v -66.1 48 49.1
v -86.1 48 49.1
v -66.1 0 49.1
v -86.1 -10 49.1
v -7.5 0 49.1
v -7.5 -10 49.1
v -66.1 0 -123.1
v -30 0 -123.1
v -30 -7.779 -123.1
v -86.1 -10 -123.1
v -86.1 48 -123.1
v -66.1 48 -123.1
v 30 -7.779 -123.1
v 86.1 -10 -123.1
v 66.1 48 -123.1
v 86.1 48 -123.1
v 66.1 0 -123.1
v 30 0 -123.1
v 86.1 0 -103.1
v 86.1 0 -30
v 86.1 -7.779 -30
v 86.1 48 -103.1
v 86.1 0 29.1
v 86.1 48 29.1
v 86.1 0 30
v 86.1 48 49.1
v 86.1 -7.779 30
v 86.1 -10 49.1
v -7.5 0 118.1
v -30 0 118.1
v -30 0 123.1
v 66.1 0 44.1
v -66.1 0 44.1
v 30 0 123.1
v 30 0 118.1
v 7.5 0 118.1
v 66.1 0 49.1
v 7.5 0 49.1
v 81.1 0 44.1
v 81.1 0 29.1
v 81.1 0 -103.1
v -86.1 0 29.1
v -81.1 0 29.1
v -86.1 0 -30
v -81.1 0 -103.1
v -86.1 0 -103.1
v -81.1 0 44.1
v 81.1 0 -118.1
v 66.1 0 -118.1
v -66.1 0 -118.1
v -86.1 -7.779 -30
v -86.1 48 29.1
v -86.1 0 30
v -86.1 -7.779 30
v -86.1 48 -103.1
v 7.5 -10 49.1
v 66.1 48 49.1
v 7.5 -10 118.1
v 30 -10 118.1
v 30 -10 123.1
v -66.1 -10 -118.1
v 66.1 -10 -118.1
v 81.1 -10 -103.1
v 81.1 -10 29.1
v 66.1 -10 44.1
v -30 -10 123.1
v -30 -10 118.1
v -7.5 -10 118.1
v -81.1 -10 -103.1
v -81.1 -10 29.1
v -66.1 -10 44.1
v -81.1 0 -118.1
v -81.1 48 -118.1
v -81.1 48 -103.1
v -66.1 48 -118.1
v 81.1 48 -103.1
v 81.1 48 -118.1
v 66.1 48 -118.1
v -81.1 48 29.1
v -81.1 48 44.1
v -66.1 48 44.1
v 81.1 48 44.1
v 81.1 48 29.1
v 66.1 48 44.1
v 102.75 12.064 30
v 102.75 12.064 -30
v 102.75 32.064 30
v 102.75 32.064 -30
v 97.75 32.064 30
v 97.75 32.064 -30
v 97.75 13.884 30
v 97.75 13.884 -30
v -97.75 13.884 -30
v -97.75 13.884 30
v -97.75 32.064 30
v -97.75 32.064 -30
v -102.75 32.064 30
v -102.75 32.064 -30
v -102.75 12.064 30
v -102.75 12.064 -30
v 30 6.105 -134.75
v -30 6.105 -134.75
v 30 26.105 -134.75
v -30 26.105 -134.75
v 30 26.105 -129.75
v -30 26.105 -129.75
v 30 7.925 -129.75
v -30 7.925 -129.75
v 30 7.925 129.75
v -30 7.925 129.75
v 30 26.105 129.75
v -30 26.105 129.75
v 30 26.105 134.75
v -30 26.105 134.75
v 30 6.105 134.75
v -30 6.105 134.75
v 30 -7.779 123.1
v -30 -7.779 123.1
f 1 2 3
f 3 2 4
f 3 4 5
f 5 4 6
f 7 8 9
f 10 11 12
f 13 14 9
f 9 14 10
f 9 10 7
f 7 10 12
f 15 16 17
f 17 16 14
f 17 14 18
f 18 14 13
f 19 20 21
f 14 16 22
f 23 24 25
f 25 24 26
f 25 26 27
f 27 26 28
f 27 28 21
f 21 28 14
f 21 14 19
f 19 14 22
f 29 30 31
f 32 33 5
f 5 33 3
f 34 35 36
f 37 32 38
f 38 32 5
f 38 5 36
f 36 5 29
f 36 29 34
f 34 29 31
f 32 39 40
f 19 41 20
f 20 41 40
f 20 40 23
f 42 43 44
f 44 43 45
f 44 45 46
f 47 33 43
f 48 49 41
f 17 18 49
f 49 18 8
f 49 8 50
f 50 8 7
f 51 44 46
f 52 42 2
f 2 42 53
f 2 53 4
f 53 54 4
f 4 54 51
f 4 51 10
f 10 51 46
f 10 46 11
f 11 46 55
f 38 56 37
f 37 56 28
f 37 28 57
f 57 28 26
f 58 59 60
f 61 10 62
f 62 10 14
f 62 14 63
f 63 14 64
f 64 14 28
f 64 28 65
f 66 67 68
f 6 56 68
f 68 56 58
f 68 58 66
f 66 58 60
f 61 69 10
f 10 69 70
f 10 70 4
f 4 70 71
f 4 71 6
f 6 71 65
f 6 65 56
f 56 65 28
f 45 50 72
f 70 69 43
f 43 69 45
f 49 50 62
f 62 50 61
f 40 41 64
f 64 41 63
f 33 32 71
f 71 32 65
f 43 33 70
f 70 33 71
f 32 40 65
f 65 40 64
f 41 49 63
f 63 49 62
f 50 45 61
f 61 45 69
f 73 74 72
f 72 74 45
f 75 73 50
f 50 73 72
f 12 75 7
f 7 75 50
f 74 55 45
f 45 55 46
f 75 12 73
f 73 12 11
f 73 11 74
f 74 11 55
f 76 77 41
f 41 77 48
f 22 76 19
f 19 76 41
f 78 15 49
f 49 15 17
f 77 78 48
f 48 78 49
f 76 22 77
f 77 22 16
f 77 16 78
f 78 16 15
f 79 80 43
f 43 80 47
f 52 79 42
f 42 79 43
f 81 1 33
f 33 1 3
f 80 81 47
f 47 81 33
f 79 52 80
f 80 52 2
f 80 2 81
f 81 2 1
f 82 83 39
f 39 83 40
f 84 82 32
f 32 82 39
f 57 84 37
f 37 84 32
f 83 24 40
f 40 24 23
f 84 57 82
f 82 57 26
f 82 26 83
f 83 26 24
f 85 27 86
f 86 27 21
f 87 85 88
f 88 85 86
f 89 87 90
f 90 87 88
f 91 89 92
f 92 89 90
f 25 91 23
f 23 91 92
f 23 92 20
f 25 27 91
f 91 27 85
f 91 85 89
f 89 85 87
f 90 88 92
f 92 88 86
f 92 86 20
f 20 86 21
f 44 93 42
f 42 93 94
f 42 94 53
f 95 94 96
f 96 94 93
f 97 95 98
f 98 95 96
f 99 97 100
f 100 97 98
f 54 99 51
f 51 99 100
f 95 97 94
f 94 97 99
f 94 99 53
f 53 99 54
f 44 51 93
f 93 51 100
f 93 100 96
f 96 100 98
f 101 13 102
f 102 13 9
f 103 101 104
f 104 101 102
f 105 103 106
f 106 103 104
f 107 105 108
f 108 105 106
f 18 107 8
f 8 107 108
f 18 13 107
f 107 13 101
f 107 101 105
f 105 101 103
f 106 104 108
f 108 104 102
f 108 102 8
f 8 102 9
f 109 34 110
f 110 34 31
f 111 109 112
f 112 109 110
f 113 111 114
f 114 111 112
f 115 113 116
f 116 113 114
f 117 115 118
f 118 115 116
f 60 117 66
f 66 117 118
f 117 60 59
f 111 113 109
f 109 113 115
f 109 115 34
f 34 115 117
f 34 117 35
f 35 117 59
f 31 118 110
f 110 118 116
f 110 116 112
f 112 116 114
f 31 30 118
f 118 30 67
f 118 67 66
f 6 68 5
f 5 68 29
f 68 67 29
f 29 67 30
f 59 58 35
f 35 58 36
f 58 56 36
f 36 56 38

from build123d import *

# Parameters (mm, degrees)
SKETCH1_W                                    = 172.2
SKETCH1_H                                    = 172.2
SKETCH1_W_2                                  = 162.2
SKETCH1_H_2                                  = 162.2
BASE_DEPTH                                   = 10
LEDGES_SIZE                                  = 15
POST_DEPTH                                   = 48
MIRRORED_POSTS_AT_THE_SECOND_PLANE_C_2_DEPTH = 48
SIDE_ARM_DEPTH                               = 30
TOP_BOTTOM_ARMS_DEPTH                        = 30
SKETCH9_W                                    = 22.5
SKETCH9_H                                    = 69
BOTTOM_ARM_CUTOUT_DEPTH                      = 177.122471593


with BuildPart() as part:
    # Sketch1 → base (new body)
    with BuildSketch(Plane(origin=(0, 0, 0), x_dir=(1, 0, 0), z_dir=(0, 1, 0))):
        with Locations((0, 37)):
            Rectangle(SKETCH1_W, SKETCH1_H)
        with Locations((0, 37)):
            Rectangle(SKETCH1_W_2, SKETCH1_H_2, mode=Mode.SUBTRACT)
    extrude(amount=-BASE_DEPTH)

    # ledges
    ledges_edges = [part.edges().sort_by_distance(p)[0] for p in [
        (-81.1, -5, 44.1),
        (-81.1, -5, -118.1),
        (81.1, -5, -118.1),
        (81.1, -5, 44.1),
    ]]
    chamfer(ledges_edges, length=LEDGES_SIZE)

    # Sketch2 → post (add)
    with BuildSketch(Plane(origin=(0, 0, 0), x_dir=(1, 0, 0), z_dir=(0, 1, 0))):
        Polygon((-81.1, 103.1), (-86.1, 103.1), (-86.1, 123.1), (-66.1, 123.1), (-66.1, 118.1), (-81.1, 118.1), align=None)
    post = extrude(amount=POST_DEPTH)

    # mirrored-posts: post across plane
    add(post.mirror(Plane.XY.offset(-37)))

    # mirrored-posts at the second plane: post across plane
    add(post.mirror(Plane(origin=(0, 0, 0), x_dir=(0, 0, 1), z_dir=(1, 0, 0))))

    # mirrored-posts at the second plane copy → mirrored-posts at the second plane c 2 (add)
    with BuildSketch(Plane(origin=(0, 0, -74), x_dir=(-1, 0, 0), z_dir=(0, 1, 0))):
        Polygon((-81.1, 103.1), (-86.1, 103.1), (-86.1, 123.1), (-66.1, 123.1), (-66.1, 118.1), (-81.1, 118.1), align=None)
    extrude(amount=MIRRORED_POSTS_AT_THE_SECOND_PLANE_C_2_DEPTH)

    # Sketch7 → side-arm (add, symmetric)
    with BuildSketch(Plane.XY):
        Polygon((86.1, -7.778619134), (102.75, 12.064078182), (102.75, 32.064078182), (97.75, 32.064078182), (97.75, 13.883929354), (86.1, 0), align=None)
    side_arm = extrude(amount=SIDE_ARM_DEPTH, both=True)

    # side-arm-mirrored: side-arm across plane
    add(side_arm.mirror(Plane(origin=(0, 0, 0), x_dir=(0, 0, 1), z_dir=(1, 0, 0))))

    # Sketch8 → top-bottom-arms (add, symmetric)
    with BuildSketch(Plane(origin=(0, 0, 0), x_dir=(0, 0, -1), z_dir=(1, 0, 0))):
        Polygon((123.1, -7.778619134), (134.75, 6.105310219), (134.75, 26.105310219), (129.75, 26.105310219), (129.75, 7.925161391), (123.1, 0), align=None)
        Polygon((-49.1, -10), (-123.1, -10), (-123.1, -7.778619134), (-134.75, 6.105310219), (-134.75, 26.105310219), (-129.75, 26.105310219), (-129.75, 7.925161391), (-123.1, 0), (-49.1, 0), align=None)
    extrude(amount=TOP_BOTTOM_ARMS_DEPTH, both=True)

    # Sketch9 → bottom-arm-cutout (cut, through all)
    with BuildSketch(Plane(origin=(0, 0, 0), x_dir=(1, 0, 0), z_dir=(0, 1, 0))):
        with Locations((-18.75, -83.6)):
            Rectangle(SKETCH9_W, SKETCH9_H)
        with Locations((18.75, -83.6)):
            Rectangle(SKETCH9_W, SKETCH9_H)
    extrude(amount=-BOTTOM_ARM_CUTOUT_DEPTH, mode=Mode.SUBTRACT)


solid = part.part
